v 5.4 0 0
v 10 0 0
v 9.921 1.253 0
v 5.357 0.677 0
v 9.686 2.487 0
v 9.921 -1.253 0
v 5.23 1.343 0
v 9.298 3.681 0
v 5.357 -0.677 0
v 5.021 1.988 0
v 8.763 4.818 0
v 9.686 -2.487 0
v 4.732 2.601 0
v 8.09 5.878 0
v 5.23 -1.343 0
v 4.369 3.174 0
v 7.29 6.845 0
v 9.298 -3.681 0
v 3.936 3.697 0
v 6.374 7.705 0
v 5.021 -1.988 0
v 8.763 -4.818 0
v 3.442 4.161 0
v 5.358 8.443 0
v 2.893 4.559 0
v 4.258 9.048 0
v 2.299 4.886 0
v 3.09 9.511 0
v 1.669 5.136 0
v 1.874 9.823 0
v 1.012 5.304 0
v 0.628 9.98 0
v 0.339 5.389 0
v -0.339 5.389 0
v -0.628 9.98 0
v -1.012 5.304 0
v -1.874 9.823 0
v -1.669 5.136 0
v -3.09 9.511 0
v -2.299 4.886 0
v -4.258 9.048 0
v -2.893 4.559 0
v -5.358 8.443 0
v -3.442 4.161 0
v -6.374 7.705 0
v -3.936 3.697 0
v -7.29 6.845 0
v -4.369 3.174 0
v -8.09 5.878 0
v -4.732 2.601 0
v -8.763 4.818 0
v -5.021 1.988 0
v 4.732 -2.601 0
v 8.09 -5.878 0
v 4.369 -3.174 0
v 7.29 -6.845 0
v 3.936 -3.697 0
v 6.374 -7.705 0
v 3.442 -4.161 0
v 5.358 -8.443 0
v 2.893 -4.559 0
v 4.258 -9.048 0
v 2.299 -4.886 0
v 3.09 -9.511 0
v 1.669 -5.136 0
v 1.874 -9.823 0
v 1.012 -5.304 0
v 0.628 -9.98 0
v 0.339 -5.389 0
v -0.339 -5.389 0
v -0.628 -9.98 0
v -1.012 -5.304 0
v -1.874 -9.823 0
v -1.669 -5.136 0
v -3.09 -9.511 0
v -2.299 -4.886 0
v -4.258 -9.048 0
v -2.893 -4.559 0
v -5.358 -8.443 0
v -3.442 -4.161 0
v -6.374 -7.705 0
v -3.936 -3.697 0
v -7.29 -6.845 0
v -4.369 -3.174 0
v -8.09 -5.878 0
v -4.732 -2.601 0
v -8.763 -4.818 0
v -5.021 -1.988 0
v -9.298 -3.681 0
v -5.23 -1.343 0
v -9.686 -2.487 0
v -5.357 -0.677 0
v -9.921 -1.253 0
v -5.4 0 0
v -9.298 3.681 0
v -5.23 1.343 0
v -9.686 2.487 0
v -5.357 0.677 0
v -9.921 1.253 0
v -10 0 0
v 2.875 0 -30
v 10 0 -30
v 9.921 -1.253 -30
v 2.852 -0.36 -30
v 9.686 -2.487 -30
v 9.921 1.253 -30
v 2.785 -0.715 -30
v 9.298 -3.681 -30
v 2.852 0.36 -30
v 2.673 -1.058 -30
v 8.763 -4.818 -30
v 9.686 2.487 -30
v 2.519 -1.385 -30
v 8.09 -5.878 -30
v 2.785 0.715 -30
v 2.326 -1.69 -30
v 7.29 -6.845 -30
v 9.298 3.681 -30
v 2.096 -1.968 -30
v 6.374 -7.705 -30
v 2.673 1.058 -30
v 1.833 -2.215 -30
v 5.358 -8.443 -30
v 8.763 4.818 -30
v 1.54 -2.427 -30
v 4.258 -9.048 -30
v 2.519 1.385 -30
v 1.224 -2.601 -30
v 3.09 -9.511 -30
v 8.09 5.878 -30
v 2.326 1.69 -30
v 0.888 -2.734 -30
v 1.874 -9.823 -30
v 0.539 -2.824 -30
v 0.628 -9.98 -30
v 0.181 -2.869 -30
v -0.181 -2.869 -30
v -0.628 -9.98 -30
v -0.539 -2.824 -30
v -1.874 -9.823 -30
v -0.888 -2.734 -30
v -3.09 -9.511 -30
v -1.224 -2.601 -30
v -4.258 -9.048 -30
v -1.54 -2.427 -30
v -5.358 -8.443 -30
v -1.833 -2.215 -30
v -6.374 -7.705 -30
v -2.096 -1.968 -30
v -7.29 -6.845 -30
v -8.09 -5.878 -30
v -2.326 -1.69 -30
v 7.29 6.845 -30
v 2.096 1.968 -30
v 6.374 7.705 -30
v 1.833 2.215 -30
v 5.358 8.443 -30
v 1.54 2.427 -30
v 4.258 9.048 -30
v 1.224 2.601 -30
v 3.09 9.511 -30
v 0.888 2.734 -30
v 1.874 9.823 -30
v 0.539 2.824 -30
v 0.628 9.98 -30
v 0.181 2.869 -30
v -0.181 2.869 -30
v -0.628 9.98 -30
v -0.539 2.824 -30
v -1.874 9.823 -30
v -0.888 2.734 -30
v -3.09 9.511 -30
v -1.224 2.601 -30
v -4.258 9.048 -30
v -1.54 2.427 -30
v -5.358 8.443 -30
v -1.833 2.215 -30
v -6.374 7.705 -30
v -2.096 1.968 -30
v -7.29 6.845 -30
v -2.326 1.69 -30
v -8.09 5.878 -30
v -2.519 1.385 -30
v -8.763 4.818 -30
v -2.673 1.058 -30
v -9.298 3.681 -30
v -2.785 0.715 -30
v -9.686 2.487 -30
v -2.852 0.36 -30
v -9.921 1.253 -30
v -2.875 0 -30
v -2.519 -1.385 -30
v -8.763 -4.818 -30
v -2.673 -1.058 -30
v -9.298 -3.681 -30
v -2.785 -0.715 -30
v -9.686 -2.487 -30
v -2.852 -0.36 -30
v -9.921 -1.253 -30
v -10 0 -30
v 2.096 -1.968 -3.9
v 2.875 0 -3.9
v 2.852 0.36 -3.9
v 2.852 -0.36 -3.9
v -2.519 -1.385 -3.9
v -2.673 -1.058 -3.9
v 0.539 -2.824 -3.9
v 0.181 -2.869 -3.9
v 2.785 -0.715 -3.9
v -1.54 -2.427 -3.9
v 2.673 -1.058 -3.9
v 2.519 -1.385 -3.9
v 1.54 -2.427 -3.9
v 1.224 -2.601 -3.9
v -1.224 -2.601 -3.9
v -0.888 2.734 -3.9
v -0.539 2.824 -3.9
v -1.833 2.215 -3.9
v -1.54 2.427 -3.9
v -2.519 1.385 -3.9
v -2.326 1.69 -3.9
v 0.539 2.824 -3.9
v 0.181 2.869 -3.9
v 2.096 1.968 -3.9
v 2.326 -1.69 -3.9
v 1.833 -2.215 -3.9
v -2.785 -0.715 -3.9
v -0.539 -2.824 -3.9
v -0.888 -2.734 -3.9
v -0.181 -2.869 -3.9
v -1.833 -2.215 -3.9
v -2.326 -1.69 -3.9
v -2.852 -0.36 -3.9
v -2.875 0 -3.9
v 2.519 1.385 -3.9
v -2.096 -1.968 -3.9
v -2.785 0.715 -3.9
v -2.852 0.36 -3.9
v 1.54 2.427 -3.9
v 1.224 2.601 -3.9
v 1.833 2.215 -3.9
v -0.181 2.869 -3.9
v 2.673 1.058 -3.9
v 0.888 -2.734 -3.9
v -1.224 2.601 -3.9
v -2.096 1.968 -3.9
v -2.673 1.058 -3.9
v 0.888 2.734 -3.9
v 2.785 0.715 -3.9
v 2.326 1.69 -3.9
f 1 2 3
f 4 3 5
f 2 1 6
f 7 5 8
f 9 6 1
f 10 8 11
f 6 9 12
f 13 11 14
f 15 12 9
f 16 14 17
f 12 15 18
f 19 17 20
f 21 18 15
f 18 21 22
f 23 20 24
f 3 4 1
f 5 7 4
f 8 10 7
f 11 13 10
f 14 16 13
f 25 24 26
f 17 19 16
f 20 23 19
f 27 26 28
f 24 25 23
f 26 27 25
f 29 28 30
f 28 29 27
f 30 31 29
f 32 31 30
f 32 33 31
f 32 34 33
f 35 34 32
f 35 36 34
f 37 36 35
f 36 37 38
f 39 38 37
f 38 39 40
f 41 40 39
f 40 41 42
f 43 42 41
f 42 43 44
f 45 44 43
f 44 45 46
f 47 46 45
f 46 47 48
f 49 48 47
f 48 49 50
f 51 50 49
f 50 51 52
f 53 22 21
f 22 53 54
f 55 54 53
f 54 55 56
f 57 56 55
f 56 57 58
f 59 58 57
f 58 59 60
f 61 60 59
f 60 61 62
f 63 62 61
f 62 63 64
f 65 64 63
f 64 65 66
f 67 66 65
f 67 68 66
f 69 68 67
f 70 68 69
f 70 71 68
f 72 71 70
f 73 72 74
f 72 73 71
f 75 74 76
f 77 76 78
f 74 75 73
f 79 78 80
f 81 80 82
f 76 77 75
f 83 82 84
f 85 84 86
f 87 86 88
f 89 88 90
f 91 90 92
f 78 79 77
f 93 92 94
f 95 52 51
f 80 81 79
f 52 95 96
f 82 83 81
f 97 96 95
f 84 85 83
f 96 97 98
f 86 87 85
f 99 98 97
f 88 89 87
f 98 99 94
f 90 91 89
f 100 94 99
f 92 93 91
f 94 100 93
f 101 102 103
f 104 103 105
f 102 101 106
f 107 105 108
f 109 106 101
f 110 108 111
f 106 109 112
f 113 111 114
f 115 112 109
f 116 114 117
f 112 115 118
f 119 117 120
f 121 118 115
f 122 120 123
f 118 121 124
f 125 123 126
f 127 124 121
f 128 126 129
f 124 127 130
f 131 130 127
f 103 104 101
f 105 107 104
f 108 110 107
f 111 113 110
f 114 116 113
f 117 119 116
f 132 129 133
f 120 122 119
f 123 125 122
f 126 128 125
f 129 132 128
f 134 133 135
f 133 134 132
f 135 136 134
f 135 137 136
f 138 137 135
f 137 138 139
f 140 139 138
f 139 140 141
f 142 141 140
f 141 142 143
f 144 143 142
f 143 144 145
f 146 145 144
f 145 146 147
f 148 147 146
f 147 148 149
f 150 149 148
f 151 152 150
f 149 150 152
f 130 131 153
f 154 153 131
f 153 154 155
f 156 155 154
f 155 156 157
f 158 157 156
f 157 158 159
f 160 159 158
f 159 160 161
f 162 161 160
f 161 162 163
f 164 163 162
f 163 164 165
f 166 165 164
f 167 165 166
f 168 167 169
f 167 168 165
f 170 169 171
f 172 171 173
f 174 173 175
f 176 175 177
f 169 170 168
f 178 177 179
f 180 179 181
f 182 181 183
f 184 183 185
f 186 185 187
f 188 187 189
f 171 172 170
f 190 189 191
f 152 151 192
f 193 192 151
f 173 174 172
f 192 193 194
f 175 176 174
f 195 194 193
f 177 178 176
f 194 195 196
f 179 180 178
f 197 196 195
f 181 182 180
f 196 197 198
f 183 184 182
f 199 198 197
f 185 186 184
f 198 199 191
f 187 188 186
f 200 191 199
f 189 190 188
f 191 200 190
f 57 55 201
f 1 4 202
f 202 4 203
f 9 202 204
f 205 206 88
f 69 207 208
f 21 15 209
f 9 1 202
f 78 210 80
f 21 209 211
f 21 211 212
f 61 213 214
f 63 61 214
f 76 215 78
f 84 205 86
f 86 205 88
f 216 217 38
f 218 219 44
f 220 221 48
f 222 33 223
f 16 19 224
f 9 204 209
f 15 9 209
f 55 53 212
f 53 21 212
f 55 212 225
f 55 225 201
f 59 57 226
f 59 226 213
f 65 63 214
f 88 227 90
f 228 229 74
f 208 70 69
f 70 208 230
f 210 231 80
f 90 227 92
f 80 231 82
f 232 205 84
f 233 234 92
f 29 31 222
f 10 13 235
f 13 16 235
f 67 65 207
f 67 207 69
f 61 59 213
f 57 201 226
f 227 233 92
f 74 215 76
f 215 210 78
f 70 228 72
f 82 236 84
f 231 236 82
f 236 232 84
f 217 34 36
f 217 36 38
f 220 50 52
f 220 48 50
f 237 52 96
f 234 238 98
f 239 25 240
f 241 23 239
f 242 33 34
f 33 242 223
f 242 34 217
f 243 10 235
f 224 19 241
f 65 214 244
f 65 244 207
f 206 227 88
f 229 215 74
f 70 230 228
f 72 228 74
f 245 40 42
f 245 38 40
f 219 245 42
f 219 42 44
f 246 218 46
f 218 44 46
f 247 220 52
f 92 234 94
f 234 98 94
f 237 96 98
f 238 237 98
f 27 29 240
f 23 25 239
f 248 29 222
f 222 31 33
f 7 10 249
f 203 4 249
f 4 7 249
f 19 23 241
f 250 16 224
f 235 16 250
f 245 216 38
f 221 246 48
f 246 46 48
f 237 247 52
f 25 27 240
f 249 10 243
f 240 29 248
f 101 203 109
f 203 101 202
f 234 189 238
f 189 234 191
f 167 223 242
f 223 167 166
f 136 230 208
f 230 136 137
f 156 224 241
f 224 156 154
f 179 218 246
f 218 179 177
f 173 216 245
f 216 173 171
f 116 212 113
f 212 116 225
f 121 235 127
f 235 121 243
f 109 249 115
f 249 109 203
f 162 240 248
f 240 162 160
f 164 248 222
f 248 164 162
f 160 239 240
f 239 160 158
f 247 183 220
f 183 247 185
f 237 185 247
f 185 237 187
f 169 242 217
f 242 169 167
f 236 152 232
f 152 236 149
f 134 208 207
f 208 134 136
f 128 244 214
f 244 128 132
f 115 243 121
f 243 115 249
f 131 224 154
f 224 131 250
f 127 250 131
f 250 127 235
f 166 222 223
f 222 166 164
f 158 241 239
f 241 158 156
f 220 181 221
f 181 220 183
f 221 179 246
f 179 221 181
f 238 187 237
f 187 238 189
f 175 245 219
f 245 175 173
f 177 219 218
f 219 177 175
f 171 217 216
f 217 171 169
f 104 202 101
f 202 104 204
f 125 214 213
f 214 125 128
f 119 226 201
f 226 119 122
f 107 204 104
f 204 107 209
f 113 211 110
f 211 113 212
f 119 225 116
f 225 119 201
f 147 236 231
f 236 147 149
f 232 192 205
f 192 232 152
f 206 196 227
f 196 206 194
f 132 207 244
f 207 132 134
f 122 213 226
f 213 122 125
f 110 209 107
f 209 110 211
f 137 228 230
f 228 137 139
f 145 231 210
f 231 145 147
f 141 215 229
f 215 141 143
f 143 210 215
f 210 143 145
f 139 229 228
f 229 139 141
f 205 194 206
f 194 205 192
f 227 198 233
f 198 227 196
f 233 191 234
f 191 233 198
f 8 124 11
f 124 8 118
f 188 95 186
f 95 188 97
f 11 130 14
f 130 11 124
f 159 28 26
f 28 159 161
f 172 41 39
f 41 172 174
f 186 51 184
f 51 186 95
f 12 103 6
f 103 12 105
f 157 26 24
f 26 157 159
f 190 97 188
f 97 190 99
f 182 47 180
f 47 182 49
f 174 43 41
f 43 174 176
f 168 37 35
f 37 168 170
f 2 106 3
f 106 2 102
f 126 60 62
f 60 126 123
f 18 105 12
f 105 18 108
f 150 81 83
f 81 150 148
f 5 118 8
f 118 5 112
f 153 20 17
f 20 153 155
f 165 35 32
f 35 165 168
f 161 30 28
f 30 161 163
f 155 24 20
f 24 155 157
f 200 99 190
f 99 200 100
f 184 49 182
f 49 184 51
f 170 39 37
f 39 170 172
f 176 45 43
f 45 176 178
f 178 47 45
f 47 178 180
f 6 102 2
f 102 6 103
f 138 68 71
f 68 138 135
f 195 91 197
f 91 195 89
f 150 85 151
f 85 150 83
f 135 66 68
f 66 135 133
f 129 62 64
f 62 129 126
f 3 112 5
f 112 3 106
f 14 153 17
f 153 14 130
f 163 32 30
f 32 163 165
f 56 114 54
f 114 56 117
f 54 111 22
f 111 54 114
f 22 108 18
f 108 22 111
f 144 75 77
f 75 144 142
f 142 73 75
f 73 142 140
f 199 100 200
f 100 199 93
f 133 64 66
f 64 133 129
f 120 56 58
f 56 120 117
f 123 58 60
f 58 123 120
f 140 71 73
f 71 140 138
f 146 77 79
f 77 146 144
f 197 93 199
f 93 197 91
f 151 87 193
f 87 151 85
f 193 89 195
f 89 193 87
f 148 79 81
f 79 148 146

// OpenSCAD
$fn = 50;


difference() {
	union() {
		translate(v = [0, 0, -30.0000000000]) {
			cylinder(h = 30, r = 10.0000000000);
		}
		cylinder(h = 0, r = 20.0000000000);
	}
	union() {
		translate(v = [0, 0, 0]) {
			rotate(a = [0, 0, 0]) {
				difference() {
					union() {
						#translate(v = [0, 0, -30.0000000000]) {
							cylinder(h = 30, r = 2.6000000000);
						}
						#translate(v = [0, 0, -3.9000000000]) {
							cylinder(h = 3.9000000000, r = 10.0000000000, r1 = 2.8750000000, r2 = 5.4000000000);
						}
						#translate(v = [0, 0, -30.0000000000]) {
							cylinder(h = 30, r = 2.8750000000);
						}
						#translate(v = [0, 0, -30.0000000000]) {
							cylinder(h = 30, r = 2.6000000000);
						}
					}
					union();
				}
			}
		}
	}
}
